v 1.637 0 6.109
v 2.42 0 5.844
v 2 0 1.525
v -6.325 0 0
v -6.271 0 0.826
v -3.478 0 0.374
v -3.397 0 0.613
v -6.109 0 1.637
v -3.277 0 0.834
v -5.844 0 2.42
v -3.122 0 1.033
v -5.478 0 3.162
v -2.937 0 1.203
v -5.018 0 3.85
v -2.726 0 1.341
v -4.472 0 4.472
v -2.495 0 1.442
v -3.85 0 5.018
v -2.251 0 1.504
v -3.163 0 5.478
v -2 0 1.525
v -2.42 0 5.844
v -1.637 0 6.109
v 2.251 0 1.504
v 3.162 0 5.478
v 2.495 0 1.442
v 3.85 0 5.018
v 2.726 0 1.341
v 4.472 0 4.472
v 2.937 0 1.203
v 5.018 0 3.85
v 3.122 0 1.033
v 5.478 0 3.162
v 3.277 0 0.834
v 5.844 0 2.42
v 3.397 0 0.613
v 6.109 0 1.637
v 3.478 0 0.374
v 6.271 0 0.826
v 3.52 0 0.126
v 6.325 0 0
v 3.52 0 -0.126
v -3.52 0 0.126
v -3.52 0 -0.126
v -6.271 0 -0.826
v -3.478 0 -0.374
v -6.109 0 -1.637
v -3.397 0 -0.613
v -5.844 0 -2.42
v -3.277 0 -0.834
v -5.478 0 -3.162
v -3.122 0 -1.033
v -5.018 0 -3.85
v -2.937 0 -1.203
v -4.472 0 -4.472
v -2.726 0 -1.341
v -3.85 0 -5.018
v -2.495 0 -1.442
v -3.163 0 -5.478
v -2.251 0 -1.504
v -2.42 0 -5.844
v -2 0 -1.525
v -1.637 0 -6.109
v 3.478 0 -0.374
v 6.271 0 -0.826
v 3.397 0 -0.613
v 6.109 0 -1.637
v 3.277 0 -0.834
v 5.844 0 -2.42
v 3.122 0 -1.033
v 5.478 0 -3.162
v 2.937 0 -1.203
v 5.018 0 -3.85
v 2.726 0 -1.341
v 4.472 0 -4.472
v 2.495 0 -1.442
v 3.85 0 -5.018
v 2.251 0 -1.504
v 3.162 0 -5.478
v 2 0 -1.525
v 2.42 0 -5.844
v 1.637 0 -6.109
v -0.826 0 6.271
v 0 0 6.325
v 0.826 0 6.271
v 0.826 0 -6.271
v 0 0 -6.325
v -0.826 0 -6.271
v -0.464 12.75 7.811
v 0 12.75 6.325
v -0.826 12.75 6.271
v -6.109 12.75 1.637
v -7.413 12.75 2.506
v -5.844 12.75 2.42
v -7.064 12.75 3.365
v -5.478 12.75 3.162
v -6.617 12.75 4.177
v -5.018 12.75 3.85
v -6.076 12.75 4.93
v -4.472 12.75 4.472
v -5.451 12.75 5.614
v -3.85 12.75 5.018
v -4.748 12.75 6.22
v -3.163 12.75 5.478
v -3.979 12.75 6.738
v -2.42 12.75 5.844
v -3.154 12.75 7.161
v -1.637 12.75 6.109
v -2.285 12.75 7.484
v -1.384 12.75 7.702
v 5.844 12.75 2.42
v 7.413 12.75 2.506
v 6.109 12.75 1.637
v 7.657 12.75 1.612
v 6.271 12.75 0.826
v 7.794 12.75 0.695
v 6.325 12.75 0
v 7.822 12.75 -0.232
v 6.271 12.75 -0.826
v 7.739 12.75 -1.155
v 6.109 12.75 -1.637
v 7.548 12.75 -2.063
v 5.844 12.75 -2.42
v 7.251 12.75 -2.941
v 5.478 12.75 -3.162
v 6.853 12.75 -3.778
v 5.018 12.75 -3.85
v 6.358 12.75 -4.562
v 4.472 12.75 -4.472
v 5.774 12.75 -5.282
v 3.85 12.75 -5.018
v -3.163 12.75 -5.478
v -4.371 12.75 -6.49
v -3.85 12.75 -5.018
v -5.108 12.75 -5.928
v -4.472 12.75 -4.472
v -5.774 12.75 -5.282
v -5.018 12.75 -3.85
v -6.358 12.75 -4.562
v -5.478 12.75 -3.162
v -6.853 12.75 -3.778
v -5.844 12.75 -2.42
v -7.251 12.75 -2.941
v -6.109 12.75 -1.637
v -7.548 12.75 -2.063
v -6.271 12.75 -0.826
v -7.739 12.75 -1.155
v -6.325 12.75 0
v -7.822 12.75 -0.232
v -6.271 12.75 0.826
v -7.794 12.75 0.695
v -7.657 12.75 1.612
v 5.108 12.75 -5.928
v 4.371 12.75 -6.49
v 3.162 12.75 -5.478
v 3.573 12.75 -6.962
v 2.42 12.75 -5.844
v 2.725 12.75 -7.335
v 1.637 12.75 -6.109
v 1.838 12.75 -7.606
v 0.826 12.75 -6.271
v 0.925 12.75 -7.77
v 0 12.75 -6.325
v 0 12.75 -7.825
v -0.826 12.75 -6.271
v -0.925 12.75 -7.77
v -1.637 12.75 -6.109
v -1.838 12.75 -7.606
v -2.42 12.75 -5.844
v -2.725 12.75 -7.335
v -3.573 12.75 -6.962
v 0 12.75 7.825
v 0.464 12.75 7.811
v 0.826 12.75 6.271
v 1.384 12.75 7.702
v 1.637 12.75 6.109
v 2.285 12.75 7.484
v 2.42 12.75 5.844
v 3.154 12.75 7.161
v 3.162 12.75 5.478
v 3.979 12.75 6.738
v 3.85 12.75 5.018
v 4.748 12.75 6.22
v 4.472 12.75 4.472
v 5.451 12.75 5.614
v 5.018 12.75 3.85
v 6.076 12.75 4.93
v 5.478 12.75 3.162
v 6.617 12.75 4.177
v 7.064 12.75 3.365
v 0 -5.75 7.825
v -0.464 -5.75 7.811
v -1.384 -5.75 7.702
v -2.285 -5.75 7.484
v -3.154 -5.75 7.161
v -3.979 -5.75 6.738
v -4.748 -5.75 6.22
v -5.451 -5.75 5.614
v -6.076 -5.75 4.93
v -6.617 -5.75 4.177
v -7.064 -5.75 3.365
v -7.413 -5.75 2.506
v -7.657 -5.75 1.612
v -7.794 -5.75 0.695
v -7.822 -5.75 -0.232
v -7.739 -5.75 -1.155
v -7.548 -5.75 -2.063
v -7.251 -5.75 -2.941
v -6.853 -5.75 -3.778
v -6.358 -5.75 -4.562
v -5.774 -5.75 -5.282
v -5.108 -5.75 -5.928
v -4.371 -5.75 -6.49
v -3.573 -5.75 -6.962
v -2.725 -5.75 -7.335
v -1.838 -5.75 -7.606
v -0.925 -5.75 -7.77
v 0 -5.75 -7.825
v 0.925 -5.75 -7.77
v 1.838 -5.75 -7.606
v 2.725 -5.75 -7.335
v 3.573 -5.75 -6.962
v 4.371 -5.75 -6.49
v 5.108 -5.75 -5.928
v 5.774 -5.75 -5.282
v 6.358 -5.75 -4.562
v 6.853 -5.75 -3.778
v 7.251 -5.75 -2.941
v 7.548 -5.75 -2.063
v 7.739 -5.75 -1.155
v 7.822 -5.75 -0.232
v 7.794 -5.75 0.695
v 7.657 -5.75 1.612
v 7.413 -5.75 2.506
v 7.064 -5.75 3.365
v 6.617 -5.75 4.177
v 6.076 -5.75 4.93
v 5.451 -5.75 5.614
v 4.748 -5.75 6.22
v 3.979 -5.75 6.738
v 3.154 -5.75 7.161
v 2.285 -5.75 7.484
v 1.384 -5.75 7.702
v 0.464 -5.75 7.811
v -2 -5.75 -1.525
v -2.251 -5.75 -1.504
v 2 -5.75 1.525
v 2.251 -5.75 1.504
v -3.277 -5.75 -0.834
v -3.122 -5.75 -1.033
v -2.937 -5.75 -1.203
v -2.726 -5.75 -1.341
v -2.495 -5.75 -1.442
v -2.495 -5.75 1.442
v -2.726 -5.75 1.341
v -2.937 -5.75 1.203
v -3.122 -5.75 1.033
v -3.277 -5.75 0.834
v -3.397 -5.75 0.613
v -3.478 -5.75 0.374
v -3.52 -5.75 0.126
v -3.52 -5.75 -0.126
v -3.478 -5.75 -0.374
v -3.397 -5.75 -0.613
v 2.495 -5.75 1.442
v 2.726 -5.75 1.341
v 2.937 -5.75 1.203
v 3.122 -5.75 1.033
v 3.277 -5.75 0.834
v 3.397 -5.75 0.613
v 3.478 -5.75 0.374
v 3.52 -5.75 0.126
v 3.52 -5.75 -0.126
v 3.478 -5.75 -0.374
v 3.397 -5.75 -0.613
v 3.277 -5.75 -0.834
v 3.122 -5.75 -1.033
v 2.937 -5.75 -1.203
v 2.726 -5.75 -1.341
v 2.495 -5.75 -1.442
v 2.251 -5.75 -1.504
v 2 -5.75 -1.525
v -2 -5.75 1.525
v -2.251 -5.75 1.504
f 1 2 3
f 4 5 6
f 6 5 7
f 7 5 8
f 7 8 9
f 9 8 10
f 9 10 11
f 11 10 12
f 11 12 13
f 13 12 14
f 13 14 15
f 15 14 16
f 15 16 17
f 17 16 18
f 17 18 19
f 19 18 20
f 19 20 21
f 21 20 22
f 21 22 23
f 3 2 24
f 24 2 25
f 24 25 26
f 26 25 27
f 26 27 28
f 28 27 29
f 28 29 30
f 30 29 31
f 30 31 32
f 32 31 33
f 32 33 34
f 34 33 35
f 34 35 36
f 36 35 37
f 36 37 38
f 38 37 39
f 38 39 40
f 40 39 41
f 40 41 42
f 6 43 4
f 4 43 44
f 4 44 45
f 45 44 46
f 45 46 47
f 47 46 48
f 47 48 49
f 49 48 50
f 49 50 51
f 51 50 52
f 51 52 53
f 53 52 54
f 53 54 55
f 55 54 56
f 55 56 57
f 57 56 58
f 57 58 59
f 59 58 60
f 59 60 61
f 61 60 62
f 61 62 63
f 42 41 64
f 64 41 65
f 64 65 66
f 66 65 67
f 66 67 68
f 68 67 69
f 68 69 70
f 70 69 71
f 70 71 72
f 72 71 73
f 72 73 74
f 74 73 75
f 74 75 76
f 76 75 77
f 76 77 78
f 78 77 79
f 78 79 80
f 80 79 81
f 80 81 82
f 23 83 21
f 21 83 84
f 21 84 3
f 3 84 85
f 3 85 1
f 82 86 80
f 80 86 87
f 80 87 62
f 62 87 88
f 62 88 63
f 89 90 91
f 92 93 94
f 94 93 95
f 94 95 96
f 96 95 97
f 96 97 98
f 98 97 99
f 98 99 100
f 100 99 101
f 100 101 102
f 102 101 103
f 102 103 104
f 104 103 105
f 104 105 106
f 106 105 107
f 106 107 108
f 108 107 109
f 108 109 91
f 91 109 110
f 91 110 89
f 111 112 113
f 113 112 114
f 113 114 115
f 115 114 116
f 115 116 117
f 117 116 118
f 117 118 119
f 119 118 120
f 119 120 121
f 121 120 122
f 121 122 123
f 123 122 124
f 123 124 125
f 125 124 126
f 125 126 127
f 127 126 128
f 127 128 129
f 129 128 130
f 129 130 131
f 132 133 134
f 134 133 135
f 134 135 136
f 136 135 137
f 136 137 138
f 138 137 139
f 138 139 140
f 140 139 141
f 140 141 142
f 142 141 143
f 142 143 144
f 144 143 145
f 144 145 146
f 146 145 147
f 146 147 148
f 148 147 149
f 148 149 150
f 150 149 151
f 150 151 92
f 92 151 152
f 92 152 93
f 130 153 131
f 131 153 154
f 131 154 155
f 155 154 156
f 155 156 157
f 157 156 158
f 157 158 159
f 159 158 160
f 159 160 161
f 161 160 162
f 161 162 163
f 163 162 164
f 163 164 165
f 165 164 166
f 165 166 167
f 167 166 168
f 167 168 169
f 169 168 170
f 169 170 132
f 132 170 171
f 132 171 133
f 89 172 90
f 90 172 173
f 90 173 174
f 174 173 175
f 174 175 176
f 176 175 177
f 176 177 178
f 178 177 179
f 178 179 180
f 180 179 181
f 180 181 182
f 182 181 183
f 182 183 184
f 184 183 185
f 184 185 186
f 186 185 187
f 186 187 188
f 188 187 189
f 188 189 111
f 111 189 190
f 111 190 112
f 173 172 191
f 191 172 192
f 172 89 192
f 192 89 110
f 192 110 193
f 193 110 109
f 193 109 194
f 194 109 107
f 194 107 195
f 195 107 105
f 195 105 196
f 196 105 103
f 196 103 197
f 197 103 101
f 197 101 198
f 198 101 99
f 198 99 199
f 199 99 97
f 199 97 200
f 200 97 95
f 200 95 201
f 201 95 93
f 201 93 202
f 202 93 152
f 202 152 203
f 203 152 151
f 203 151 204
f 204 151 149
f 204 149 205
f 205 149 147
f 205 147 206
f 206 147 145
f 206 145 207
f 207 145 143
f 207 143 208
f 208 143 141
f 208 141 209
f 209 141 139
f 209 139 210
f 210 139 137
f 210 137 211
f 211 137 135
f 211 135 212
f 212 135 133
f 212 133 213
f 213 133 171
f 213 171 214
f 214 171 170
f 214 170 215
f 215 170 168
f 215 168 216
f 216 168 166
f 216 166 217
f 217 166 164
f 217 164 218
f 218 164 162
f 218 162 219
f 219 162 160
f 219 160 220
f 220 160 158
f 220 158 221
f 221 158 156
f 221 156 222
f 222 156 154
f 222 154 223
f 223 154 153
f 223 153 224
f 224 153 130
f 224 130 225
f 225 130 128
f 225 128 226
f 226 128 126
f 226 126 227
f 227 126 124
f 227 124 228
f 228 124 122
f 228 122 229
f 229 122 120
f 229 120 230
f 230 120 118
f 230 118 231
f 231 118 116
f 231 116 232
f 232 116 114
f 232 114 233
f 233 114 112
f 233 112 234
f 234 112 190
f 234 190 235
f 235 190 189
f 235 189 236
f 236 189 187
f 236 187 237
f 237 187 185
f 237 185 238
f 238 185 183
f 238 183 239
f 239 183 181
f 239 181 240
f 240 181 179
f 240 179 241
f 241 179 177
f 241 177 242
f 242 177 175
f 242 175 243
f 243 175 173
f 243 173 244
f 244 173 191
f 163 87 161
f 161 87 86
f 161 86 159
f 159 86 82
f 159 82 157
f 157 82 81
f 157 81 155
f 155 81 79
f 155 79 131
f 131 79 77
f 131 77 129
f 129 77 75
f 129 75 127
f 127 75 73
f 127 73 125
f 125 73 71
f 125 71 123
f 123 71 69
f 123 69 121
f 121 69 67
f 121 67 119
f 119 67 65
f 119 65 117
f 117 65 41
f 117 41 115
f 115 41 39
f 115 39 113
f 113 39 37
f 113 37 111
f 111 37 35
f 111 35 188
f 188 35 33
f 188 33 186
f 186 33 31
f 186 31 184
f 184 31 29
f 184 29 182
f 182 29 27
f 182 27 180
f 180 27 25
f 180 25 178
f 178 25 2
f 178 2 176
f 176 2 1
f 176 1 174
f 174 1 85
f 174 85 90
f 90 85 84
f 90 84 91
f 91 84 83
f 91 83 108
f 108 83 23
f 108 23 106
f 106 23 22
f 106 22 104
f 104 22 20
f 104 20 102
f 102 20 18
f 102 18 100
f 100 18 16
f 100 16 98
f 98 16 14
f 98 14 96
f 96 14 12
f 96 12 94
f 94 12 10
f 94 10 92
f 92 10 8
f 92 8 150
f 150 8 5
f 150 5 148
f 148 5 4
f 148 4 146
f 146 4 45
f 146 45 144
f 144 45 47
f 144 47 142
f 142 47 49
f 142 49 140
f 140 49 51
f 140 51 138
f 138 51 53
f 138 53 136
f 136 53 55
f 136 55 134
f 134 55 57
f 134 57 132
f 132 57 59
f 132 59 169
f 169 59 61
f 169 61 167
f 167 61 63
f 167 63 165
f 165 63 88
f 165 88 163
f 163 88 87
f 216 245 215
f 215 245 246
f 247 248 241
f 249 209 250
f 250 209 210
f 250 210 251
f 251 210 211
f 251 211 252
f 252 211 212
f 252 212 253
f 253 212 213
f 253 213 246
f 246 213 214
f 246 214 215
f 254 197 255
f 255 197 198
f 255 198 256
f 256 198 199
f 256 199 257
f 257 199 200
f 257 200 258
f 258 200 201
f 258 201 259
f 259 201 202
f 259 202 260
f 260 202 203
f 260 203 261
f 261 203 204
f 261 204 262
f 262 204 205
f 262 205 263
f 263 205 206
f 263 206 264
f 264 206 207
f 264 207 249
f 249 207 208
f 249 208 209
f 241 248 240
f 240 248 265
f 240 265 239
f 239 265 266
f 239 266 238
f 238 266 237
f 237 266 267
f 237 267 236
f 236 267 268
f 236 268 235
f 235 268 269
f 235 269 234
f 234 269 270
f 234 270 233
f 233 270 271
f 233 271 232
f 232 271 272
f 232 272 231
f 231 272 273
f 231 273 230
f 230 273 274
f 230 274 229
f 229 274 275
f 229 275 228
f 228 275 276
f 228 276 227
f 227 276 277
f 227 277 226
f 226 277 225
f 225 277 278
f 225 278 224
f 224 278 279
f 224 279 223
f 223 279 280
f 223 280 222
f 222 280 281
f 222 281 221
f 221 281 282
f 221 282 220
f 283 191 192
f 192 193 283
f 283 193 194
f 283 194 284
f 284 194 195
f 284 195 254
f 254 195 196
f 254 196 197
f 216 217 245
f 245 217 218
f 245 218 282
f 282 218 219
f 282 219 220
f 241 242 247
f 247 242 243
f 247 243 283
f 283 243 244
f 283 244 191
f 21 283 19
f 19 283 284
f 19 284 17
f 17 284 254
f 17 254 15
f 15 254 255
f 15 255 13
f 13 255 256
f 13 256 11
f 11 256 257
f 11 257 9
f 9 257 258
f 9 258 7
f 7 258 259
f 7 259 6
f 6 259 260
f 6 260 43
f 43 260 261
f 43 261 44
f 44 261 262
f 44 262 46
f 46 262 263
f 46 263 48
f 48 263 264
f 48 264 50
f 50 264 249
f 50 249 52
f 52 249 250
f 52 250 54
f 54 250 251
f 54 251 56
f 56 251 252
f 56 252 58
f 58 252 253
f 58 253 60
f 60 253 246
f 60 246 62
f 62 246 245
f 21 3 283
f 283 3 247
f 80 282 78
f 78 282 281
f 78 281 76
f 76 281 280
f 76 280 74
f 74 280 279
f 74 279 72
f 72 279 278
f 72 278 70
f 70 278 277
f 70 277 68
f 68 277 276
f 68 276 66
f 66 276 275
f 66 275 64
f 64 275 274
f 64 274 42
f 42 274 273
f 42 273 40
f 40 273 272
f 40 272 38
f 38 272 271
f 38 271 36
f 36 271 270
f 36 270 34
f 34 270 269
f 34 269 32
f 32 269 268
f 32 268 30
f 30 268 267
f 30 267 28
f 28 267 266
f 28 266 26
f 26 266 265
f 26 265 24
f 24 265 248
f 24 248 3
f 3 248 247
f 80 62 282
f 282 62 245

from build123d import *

# Parameters (mm, degrees)
SKETCH1_R           = 7.825
SKETCH1_R_2         = 6.325
BOSS_EXTRUDE1_DEPTH = 12.75
BOSS_EXTRUDE2_START = -5.75
SKETCH1_2_R         = 7.825
BOSS_EXTRUDE2_DEPTH = 5.75
CUT_EXTRUDE1_DEPTH  = 5.75


with BuildPart() as part:
    # Sketch1 → Boss-Extrude1 (new body)
    with BuildSketch(Plane(origin=(0, 0, 0), x_dir=(1, 0, 0), z_dir=(0, 1, 0))):
        Circle(SKETCH1_R)
        Circle(SKETCH1_R_2, mode=Mode.SUBTRACT)
    extrude(amount=BOSS_EXTRUDE1_DEPTH)

    # Sketch1<2> → Boss-Extrude2 (add)
    with BuildSketch(Plane(origin=(0, 0, 0), x_dir=(1, 0, 0), z_dir=(0, 1, 0)).offset(BOSS_EXTRUDE2_START)):
        Circle(SKETCH1_2_R)
    extrude(amount=BOSS_EXTRUDE2_DEPTH)

    # Sketch2 → Cut-Extrude1 (cut)
    with BuildSketch(Plane.XZ.offset(5.75)):
        with BuildLine():
            Line((-2, 1.525), (2, 1.525))
            ThreePointArc((2, 1.525), (3.525, 0), (2, -1.525))
            Line((2, -1.525), (-2, -1.525))
            ThreePointArc((-2, -1.525), (-3.525, 0), (-2, 1.525))
        make_face()
    extrude(amount=-CUT_EXTRUDE1_DEPTH, mode=Mode.SUBTRACT)


solid = part.part
